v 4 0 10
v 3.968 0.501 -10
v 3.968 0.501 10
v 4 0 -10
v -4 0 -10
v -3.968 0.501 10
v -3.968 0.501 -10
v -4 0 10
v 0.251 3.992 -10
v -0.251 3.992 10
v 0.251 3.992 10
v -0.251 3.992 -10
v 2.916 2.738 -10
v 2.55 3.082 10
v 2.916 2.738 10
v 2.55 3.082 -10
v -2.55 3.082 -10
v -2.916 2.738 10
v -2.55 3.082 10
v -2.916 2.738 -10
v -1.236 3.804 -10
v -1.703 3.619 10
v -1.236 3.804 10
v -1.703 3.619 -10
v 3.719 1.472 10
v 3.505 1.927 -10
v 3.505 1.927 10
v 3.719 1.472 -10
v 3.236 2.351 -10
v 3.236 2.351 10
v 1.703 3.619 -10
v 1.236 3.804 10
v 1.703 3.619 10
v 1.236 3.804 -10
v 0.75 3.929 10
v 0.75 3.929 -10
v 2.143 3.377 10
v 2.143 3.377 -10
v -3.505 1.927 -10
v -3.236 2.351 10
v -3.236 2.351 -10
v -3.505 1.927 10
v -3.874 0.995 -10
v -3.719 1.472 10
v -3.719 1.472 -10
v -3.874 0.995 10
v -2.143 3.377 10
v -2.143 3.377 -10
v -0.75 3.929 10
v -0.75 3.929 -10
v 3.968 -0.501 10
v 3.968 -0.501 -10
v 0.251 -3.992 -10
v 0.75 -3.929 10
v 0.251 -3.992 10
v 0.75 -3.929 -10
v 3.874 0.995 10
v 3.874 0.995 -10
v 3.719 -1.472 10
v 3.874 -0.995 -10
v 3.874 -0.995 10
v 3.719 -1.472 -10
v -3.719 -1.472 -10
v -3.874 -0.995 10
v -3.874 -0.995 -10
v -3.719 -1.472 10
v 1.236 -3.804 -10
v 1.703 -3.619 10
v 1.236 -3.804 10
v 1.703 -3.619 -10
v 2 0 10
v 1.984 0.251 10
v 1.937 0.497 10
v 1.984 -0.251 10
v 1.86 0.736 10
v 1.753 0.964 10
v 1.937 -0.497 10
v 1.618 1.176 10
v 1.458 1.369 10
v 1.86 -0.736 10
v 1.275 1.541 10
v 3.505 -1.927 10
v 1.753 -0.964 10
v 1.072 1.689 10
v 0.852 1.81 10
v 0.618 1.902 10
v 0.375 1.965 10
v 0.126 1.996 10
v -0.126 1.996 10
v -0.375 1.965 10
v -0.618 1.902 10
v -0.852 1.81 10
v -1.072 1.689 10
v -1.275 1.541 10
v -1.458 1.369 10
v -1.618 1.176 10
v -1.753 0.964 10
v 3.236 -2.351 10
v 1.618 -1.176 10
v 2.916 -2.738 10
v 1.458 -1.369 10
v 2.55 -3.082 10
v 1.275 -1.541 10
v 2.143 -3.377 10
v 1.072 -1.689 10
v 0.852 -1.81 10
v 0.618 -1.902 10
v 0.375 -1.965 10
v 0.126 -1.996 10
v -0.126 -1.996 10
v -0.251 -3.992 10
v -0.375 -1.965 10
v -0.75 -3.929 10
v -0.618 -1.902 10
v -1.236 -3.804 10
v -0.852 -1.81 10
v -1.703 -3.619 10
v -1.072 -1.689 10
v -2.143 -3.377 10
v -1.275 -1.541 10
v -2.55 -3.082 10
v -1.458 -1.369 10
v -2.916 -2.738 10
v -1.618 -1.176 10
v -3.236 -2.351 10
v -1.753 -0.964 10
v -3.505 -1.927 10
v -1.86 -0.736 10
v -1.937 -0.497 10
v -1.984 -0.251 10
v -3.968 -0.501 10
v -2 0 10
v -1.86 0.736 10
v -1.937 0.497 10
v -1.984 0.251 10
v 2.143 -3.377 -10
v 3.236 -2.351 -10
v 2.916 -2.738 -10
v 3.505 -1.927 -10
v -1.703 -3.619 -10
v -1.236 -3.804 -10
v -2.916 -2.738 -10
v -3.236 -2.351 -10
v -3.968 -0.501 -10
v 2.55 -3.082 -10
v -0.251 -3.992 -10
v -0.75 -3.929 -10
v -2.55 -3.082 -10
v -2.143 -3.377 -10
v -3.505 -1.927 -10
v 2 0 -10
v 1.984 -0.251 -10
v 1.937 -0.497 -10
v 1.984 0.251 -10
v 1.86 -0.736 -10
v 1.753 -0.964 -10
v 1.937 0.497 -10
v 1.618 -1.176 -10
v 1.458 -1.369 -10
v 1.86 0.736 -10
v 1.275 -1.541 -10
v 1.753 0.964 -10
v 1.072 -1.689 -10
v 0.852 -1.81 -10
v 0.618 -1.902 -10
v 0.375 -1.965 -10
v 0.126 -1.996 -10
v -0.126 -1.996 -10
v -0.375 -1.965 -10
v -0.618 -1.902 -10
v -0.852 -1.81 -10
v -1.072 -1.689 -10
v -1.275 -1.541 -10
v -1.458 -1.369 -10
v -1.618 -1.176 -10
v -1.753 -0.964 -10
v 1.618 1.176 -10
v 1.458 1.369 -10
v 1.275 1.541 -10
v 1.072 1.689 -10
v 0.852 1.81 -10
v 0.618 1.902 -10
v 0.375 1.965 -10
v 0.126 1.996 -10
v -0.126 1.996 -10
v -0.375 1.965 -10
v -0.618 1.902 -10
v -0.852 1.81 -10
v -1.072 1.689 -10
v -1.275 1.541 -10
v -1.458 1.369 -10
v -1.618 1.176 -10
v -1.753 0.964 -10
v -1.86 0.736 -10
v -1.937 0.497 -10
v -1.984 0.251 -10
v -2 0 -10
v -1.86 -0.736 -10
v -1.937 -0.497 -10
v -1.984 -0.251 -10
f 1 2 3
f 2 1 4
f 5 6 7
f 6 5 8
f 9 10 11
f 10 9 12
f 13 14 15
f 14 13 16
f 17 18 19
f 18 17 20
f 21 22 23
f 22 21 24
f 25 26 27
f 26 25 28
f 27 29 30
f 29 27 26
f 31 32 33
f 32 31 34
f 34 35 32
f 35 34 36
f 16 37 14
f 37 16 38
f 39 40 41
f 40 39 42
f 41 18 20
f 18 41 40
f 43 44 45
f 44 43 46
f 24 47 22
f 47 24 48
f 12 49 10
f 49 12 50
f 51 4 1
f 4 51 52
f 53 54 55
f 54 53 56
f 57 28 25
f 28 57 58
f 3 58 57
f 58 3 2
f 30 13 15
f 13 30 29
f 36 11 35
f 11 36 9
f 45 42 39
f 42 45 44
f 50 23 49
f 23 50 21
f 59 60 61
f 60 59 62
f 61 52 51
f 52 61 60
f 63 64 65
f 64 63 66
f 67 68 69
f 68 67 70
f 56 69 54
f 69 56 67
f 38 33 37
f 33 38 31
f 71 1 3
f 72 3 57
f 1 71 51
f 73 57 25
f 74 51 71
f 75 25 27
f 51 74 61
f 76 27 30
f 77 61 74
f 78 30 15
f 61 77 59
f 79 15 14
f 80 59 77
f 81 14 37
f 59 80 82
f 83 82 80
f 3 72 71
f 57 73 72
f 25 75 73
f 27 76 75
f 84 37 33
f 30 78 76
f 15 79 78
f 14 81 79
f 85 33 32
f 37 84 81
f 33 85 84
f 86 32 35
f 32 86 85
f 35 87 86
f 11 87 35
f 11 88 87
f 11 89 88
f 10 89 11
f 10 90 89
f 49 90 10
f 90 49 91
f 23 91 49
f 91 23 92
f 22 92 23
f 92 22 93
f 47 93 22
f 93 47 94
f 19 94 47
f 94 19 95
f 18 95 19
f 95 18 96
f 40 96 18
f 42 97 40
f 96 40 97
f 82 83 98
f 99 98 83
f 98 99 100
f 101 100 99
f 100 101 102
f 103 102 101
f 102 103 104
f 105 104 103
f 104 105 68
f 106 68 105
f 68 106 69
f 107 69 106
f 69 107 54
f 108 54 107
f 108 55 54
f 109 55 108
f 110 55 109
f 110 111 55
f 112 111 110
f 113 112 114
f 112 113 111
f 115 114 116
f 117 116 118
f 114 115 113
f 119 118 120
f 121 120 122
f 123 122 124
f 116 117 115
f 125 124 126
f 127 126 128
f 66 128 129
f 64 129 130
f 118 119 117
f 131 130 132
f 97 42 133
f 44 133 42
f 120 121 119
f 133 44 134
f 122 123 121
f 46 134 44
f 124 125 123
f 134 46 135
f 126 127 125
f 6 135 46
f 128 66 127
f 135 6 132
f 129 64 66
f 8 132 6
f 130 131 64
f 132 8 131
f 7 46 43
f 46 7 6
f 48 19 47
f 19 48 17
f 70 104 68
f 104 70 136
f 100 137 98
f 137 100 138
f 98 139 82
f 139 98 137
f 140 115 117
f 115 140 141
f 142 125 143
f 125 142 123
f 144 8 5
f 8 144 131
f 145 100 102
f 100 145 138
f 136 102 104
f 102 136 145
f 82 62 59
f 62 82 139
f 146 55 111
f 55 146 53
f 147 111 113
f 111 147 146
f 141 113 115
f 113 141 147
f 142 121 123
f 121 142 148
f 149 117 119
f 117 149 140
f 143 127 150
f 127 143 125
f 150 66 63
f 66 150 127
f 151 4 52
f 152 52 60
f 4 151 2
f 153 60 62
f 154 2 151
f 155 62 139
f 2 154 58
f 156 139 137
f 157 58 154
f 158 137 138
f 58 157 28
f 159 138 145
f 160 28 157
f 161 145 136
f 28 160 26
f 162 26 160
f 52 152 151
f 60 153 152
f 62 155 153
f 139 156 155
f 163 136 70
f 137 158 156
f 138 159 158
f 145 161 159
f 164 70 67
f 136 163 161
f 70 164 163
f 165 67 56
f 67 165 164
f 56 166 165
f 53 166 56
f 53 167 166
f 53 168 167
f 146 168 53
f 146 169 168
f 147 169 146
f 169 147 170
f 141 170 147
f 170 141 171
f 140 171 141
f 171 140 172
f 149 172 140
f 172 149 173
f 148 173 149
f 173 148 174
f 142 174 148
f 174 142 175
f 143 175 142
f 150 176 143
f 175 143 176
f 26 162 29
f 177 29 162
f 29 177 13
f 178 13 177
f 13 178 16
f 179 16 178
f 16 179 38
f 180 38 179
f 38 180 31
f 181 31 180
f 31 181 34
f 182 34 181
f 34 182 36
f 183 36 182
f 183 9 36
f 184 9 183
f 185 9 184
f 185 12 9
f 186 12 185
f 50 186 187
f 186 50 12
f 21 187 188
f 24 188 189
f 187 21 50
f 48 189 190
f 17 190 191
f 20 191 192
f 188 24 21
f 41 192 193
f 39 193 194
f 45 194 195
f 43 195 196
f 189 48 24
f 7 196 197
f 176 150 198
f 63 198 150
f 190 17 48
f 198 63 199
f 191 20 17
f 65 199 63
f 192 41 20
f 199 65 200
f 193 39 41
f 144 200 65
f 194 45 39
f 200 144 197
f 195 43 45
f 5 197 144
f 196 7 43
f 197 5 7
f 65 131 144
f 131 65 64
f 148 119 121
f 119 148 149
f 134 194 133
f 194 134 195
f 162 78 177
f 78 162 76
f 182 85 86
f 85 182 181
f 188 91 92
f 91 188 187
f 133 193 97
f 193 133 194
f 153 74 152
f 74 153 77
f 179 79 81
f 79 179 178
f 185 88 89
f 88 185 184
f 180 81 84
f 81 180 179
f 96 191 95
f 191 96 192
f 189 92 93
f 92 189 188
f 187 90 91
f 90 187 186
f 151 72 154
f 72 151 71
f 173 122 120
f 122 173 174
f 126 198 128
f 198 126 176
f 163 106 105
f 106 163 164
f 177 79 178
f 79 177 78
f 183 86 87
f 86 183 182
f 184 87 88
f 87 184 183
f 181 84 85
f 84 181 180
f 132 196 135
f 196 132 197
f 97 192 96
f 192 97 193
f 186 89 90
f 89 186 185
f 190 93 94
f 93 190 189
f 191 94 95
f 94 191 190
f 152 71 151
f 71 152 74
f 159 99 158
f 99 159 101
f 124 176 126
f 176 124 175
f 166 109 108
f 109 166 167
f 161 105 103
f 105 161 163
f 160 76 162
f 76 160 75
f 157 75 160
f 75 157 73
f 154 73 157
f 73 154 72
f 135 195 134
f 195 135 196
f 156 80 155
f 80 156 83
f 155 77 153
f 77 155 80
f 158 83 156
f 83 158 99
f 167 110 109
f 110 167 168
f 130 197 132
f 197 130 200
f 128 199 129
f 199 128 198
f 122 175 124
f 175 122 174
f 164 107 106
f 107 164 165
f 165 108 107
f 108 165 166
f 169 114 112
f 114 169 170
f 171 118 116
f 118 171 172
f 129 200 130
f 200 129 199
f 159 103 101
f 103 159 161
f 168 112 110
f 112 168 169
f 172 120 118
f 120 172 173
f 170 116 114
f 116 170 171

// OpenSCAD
$fn = 50;


difference() {
	union() {
		translate(v = [0, 0, -10.0000000000]) {
			cylinder(h = 20, r = 4.0000000000);
		}
	}
	union() {
		translate(v = [0, 0, -100.0000000000]) {
			cylinder(h = 200, r = 2.0000000000);
		}
	}
}
